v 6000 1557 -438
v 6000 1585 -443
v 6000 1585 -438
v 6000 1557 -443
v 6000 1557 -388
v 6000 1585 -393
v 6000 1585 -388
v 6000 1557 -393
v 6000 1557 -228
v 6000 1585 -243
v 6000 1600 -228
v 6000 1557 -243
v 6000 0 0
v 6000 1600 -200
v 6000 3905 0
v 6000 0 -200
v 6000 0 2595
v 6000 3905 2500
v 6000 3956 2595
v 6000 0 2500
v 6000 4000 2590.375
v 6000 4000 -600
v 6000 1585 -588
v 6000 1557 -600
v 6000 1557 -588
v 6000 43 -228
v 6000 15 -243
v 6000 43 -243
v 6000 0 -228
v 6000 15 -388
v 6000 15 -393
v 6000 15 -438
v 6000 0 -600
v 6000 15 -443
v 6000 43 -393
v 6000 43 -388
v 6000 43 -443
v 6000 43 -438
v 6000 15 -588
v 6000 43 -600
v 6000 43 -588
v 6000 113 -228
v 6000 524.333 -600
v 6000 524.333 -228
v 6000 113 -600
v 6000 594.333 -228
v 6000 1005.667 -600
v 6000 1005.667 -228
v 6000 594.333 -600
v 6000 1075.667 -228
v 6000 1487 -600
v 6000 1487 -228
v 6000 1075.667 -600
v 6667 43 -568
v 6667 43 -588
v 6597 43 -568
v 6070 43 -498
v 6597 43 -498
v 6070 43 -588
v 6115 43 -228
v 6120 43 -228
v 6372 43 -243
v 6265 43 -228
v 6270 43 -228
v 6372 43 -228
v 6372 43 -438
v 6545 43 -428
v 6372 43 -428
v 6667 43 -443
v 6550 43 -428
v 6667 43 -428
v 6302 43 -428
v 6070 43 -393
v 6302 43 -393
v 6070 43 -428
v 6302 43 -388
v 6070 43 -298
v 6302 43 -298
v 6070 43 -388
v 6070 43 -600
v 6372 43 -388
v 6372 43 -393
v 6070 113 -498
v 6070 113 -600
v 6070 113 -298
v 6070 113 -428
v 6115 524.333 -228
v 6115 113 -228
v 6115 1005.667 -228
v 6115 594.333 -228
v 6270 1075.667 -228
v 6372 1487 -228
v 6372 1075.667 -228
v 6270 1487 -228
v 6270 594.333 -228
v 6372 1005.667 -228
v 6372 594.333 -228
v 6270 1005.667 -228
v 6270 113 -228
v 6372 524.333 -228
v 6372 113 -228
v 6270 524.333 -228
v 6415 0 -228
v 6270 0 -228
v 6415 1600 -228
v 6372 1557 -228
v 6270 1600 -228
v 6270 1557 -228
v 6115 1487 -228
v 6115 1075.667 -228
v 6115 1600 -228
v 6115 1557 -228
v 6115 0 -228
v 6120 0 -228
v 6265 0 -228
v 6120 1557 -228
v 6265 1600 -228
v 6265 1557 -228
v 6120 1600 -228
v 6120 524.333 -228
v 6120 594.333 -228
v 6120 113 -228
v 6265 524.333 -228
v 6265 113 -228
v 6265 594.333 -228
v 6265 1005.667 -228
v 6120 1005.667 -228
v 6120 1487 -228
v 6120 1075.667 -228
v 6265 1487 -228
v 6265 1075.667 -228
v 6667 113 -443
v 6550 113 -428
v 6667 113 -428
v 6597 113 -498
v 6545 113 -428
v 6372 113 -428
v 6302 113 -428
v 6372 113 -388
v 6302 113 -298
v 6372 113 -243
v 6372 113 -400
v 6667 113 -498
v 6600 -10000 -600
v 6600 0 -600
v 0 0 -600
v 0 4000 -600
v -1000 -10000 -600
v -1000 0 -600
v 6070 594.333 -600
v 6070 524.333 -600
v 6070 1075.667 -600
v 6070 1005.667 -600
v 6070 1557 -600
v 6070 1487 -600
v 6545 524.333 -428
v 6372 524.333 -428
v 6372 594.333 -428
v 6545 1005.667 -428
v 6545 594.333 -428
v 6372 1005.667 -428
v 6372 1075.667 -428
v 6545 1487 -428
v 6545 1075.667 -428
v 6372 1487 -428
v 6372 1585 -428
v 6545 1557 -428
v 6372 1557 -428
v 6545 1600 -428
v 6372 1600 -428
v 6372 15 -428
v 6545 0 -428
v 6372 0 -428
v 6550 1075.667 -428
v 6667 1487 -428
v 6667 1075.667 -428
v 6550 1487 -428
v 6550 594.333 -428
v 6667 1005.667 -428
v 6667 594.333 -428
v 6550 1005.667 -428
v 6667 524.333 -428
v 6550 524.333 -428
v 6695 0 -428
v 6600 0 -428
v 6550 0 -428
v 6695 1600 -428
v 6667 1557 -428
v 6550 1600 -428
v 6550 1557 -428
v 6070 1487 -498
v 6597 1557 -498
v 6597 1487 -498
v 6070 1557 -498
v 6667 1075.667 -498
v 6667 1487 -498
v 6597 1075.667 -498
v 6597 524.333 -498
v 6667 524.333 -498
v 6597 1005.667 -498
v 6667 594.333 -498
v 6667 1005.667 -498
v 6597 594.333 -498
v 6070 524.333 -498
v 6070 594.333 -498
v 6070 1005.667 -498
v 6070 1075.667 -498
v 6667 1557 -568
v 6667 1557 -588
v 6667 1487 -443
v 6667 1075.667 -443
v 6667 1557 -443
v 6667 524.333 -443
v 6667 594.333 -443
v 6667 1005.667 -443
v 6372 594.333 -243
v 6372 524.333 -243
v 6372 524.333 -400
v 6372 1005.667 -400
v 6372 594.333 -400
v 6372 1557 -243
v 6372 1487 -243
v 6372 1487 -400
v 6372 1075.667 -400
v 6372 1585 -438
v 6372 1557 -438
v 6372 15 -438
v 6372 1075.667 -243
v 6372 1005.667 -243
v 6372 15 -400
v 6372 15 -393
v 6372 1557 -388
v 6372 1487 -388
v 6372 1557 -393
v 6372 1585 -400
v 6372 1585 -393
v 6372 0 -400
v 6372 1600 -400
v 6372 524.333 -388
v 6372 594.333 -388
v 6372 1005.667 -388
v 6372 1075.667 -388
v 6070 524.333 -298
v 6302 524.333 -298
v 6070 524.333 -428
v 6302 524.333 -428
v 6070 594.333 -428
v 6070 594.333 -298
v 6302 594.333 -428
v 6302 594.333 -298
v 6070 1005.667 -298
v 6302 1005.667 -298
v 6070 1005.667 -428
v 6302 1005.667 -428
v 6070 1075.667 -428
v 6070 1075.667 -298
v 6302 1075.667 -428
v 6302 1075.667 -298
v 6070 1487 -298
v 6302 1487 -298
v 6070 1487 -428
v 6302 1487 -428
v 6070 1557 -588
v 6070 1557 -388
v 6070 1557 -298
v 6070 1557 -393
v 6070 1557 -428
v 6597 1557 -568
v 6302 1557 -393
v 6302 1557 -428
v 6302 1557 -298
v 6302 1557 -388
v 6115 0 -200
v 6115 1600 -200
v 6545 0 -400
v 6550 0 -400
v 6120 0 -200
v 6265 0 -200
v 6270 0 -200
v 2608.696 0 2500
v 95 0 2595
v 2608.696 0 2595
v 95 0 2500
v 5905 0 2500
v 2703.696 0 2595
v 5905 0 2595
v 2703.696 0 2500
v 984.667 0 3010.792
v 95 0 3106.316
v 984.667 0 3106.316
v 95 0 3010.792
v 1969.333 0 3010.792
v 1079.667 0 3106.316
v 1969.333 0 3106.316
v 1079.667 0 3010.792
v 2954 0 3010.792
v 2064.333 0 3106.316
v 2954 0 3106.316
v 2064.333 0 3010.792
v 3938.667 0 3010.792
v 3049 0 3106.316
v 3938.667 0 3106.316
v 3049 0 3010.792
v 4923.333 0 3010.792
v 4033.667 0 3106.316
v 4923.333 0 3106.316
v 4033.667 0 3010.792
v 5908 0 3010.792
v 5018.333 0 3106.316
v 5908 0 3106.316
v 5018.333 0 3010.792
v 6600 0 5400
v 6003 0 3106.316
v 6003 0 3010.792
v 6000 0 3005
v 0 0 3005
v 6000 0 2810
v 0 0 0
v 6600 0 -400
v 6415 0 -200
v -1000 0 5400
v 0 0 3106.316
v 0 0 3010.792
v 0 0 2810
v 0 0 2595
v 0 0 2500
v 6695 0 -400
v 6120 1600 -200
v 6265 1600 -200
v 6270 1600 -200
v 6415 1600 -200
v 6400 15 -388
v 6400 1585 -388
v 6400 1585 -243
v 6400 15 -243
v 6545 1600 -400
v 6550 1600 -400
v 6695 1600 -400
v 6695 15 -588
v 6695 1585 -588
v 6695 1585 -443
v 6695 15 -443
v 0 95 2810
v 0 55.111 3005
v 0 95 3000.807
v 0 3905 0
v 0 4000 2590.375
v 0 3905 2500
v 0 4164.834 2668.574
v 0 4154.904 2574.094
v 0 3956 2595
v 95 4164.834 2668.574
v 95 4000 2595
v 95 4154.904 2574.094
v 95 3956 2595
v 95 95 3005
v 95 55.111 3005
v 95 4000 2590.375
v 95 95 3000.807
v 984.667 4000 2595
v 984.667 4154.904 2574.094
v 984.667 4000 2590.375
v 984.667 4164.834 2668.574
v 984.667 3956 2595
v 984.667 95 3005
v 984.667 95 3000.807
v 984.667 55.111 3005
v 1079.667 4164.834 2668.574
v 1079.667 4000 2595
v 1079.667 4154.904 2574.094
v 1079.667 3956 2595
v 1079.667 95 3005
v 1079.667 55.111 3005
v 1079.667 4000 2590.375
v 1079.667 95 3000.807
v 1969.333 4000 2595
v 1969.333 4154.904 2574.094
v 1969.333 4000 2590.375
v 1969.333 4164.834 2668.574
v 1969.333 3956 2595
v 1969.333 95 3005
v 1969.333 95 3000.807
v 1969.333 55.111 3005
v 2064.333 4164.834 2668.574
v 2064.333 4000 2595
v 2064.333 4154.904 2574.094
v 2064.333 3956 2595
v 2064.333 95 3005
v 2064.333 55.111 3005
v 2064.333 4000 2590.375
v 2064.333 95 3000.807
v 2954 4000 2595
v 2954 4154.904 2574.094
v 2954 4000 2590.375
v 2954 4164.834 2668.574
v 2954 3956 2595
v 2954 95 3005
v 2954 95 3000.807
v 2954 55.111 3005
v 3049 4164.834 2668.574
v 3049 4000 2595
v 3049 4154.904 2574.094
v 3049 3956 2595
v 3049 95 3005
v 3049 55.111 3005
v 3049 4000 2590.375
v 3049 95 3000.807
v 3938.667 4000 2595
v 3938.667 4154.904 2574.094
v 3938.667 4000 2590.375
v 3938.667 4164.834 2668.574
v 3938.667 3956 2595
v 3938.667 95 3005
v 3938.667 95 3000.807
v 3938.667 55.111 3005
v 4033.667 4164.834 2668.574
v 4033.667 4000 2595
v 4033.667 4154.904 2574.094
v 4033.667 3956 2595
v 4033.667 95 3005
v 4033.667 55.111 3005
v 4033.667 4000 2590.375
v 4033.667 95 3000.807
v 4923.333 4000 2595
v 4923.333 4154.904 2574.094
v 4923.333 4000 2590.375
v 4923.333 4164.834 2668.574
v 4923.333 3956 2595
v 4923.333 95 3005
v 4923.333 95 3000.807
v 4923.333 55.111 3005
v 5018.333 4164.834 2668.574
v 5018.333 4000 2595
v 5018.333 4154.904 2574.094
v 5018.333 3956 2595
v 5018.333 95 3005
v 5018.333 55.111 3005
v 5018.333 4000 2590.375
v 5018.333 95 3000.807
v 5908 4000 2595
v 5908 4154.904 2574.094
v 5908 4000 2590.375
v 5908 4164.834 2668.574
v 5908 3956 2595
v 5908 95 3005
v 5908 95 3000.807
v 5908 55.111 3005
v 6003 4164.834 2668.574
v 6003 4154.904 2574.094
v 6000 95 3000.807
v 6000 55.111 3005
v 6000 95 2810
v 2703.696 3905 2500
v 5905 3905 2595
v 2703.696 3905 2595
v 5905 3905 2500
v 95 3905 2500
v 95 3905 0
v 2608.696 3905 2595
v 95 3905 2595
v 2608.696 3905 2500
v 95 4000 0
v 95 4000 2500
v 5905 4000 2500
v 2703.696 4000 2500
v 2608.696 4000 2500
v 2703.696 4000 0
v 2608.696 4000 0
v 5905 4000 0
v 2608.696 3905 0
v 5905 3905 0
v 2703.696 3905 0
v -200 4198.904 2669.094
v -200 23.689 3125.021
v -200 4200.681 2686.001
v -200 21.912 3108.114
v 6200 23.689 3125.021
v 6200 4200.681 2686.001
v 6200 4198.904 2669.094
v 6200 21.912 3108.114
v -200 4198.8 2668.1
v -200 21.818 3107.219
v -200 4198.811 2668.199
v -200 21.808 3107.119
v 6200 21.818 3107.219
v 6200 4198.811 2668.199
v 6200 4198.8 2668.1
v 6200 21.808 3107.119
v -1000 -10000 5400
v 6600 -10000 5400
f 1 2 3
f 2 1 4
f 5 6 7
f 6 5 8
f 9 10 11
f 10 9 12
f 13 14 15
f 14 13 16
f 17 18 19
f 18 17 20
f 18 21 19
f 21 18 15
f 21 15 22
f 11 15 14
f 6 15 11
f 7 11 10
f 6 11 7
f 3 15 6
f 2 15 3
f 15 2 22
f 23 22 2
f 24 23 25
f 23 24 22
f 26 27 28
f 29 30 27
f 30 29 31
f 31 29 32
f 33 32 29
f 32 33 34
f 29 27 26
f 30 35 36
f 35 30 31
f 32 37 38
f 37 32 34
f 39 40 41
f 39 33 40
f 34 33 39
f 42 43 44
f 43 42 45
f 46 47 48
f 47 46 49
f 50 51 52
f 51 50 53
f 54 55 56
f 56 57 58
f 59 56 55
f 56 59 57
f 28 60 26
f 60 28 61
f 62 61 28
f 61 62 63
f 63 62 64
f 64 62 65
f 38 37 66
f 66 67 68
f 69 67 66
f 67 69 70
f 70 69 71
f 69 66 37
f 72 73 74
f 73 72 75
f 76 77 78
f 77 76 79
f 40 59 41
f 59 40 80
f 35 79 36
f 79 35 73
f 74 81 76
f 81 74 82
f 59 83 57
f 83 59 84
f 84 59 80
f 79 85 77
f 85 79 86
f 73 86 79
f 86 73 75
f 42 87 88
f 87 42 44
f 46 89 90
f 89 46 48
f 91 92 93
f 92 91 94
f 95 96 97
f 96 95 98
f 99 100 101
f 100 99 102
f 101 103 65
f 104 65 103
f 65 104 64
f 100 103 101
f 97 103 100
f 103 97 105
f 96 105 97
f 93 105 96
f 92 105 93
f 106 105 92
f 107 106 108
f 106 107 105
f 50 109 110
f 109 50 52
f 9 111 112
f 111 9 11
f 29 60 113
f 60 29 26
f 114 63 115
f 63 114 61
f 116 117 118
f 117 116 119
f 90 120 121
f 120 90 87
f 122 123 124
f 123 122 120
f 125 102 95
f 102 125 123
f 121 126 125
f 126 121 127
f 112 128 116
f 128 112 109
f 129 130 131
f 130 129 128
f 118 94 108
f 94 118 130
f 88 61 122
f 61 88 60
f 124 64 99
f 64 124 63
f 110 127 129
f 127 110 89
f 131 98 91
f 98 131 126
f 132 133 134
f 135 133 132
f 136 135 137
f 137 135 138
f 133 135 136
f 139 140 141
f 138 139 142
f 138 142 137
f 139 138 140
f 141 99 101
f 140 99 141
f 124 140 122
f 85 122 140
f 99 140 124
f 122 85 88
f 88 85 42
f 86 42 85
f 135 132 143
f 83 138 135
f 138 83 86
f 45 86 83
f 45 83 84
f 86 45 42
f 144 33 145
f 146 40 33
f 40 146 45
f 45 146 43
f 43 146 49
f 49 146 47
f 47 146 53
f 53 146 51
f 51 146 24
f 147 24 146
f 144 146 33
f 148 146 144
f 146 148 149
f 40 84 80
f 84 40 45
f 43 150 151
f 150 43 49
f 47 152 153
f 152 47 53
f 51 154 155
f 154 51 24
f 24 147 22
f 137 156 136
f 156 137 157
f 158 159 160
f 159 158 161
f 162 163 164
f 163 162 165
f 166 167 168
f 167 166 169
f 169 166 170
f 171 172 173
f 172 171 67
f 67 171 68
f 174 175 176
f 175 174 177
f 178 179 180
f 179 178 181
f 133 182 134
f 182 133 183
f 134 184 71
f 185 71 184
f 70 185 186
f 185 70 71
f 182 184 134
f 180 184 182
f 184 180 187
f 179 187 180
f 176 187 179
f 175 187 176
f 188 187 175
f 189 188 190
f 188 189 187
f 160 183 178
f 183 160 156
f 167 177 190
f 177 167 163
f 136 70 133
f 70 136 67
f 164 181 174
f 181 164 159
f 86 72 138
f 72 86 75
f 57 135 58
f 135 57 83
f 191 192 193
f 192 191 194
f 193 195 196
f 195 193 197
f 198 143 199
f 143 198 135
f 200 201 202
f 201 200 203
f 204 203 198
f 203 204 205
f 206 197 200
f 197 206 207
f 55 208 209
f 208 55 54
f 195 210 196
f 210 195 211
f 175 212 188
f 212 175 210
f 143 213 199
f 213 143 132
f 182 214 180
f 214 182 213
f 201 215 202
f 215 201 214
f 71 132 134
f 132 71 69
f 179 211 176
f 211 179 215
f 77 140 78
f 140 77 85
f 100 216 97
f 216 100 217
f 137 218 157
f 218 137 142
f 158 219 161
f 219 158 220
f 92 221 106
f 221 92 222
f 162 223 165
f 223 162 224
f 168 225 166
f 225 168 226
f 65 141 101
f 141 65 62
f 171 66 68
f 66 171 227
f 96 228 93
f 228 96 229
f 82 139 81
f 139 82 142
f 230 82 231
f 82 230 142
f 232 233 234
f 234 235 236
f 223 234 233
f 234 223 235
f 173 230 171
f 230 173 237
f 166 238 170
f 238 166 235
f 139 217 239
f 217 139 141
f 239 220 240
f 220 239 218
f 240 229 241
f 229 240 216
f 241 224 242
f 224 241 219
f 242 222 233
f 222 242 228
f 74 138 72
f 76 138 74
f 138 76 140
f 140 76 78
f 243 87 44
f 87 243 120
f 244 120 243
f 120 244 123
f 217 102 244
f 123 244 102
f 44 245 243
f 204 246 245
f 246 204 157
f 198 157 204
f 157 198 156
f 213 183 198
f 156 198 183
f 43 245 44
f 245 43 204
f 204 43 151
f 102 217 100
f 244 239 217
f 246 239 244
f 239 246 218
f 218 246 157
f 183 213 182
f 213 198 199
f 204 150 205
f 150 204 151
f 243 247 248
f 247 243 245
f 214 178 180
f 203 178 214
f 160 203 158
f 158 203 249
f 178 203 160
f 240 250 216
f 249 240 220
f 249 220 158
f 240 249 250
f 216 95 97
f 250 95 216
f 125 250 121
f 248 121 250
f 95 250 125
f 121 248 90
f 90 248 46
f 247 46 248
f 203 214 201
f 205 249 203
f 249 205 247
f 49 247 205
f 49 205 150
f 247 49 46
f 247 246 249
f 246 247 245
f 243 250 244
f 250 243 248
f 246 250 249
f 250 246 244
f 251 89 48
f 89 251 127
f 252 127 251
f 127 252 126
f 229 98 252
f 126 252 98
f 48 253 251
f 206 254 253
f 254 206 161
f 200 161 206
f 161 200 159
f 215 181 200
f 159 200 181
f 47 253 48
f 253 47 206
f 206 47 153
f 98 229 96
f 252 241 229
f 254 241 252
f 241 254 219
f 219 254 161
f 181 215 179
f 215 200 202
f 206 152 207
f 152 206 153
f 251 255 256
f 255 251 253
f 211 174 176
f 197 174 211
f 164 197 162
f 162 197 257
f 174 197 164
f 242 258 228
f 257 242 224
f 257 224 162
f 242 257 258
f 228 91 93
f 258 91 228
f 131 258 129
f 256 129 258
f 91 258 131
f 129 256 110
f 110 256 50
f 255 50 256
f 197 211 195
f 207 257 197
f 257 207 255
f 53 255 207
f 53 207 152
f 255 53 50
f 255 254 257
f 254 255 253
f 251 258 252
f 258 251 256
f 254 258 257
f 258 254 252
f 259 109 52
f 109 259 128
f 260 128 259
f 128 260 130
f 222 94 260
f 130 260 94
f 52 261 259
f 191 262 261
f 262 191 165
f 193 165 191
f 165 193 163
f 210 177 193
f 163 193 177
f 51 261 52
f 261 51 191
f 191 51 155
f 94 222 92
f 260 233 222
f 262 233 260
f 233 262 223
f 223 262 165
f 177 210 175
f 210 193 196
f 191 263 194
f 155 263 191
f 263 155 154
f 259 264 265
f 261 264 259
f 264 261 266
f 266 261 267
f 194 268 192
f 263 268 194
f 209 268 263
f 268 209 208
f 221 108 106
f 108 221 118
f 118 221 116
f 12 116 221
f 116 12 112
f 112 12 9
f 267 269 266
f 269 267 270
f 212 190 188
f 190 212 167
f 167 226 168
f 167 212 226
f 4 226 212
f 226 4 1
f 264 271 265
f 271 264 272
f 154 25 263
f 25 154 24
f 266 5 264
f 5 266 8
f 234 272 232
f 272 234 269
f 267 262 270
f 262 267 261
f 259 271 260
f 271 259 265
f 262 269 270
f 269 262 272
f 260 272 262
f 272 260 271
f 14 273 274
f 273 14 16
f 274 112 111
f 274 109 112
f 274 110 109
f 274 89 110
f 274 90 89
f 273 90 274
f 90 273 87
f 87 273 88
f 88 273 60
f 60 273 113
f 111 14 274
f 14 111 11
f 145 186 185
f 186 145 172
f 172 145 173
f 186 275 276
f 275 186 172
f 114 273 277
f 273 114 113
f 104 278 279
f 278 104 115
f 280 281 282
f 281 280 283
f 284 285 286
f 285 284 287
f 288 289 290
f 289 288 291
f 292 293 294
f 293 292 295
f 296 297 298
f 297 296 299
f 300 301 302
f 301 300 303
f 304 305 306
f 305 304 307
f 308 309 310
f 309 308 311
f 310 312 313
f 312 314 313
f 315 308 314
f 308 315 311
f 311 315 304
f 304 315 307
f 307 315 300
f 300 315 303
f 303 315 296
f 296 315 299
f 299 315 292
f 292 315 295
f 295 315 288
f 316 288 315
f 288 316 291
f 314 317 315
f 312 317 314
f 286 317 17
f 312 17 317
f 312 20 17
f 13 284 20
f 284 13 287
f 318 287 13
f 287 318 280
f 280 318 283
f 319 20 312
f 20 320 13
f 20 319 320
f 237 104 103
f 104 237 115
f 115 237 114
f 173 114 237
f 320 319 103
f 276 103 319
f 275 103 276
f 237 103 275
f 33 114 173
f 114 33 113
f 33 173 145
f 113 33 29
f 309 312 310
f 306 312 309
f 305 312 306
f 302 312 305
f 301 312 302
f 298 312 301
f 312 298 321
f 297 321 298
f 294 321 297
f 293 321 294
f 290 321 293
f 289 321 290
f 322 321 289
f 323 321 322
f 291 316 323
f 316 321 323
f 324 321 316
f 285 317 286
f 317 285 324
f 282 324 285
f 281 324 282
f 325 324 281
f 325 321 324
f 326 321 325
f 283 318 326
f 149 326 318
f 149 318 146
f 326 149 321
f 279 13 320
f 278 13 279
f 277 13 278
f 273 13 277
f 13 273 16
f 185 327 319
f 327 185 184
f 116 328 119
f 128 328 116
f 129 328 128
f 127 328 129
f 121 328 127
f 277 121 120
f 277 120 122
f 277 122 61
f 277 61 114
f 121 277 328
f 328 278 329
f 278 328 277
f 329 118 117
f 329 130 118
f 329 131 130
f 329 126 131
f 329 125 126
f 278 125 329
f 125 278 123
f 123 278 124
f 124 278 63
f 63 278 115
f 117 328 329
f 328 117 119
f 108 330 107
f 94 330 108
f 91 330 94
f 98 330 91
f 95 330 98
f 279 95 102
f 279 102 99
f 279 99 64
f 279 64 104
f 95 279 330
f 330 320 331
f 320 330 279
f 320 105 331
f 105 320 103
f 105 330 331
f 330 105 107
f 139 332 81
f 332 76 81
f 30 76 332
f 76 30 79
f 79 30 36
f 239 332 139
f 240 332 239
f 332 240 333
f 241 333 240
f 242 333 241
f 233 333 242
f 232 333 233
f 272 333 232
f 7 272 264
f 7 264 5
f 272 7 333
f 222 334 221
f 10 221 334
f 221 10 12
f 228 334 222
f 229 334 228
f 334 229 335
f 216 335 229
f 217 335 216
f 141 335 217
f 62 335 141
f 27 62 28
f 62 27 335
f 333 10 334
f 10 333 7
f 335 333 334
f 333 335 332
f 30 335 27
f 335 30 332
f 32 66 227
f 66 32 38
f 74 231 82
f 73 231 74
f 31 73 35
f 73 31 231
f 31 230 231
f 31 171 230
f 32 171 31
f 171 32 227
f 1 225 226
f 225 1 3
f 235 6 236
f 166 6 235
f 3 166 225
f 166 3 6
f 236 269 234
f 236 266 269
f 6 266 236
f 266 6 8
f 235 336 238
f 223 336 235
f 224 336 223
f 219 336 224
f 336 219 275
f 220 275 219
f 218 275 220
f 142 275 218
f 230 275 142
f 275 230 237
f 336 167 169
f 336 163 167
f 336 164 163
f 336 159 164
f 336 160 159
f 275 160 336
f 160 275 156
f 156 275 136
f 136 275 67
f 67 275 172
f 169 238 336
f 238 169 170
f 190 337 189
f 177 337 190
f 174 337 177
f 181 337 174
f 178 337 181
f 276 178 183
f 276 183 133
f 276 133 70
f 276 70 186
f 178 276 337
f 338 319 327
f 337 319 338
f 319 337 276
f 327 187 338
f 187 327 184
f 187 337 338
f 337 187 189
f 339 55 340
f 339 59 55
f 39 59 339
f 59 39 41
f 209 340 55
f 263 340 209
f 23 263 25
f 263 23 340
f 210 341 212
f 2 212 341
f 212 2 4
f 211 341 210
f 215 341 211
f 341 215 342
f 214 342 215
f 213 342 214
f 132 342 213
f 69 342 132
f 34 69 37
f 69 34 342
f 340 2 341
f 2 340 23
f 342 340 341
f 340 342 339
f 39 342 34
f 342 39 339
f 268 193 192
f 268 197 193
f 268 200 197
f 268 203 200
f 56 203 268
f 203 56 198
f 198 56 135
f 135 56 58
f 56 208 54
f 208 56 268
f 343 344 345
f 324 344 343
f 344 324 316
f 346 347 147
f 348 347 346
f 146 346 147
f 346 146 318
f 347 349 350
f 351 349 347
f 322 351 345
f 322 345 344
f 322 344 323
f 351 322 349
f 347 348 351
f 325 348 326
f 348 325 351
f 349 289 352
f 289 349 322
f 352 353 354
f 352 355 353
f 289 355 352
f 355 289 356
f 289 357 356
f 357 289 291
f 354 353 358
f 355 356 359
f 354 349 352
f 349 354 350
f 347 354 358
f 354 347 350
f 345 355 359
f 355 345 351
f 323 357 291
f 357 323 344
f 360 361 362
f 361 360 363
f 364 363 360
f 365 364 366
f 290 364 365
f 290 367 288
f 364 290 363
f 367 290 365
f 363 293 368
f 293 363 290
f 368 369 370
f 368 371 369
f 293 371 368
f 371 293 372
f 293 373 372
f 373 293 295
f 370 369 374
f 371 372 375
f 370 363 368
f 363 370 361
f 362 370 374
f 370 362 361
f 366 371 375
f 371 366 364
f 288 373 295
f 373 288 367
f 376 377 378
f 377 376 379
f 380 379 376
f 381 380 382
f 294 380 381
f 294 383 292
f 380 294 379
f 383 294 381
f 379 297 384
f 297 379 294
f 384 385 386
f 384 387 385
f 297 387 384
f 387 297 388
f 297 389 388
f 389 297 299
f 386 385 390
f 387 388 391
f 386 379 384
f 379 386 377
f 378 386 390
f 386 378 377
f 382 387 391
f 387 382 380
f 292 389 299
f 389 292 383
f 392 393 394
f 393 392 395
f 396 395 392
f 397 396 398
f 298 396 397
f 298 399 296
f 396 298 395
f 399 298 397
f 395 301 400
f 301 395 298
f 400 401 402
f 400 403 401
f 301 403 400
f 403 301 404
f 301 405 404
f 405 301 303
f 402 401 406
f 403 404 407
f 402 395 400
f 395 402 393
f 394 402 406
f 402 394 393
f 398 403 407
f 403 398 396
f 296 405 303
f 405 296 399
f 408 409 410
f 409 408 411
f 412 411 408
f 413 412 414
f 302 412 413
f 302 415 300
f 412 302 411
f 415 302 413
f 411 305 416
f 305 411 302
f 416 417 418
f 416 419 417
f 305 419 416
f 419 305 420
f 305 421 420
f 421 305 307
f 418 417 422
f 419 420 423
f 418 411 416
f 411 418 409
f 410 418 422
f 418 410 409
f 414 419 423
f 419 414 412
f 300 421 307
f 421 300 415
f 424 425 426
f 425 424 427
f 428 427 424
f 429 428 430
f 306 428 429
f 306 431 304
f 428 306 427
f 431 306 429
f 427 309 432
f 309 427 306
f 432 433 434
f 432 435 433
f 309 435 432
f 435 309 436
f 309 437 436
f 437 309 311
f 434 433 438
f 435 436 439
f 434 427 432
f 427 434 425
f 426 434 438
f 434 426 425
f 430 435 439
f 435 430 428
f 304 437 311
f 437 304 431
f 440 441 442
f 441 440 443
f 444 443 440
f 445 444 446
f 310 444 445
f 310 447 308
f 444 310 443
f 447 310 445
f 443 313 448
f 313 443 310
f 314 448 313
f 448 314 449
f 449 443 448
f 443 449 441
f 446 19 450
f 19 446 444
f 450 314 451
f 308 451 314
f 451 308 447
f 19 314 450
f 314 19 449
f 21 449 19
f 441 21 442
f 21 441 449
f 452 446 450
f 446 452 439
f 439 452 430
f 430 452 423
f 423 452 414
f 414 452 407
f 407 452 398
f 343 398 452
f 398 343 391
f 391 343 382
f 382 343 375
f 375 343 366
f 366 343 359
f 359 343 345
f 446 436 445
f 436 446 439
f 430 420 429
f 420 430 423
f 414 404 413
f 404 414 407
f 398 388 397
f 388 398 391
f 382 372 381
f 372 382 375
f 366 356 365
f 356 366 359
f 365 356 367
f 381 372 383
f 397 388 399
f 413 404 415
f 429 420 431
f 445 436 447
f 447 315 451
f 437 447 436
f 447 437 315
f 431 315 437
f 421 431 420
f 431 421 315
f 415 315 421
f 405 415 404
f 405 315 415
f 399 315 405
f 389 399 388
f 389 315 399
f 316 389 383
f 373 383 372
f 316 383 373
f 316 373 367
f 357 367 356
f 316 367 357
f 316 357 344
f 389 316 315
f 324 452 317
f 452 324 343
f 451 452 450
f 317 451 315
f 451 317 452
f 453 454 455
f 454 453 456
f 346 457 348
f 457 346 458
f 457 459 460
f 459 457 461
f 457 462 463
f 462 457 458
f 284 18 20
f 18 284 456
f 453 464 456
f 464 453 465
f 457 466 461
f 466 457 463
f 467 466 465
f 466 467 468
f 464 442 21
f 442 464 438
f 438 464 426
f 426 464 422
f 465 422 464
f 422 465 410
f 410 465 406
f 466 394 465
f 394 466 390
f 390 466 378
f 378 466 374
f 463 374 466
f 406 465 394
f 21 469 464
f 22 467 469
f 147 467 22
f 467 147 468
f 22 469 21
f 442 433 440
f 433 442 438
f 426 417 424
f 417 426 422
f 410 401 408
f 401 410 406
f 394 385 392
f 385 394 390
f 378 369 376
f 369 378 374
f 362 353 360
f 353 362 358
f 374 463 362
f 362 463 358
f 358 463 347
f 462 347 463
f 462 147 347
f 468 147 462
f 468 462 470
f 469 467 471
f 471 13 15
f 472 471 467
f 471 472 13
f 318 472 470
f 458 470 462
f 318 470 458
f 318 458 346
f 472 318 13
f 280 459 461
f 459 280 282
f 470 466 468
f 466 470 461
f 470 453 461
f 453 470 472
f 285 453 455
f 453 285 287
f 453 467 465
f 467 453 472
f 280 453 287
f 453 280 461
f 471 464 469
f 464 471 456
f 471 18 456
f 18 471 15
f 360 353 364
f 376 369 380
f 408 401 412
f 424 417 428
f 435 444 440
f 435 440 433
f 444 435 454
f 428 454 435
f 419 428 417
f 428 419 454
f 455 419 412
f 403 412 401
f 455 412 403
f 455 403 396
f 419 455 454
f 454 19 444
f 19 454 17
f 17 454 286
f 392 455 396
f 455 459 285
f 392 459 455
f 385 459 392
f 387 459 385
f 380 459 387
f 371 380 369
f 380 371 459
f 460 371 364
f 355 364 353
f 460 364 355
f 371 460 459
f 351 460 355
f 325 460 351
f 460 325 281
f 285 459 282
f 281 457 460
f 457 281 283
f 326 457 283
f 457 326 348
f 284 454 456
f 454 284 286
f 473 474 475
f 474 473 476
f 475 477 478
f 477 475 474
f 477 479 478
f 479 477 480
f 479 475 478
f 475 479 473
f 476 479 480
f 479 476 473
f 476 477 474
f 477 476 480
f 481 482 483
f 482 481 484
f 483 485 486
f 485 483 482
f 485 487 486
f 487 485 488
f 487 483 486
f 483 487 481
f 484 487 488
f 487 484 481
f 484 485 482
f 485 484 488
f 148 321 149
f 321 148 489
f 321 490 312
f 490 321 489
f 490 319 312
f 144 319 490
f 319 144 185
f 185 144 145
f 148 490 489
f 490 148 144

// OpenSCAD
// file: ../utils/own/helpers.scad
module Cube(width, length, height) {
  color("#ffeb91")
  cube([width, length, height]);
}

module 22x170(length = 100) {
  Cube(22, length, 170);
}

module 34x70(length = 100) {
  Cube(34, length, 70);
}

module 34x120(length = 100) {
  Cube(34, length, 120);
}

module 34x140(length = 100) {
  Cube(34, length, 140);
}

module 45x70(length = 100) {
  Cube(45, length, 70);
}

module 70x70(length = 100) {
  Cube(70, length, 70);
}

module 95x95(length = 100) {
  Cube(95, length, 95);
}

module 95x190(length = 100) {
  Cube(95, length, 195);
}

module Rotate(rotation = [0, 0, 0], origin = [0, 0, 0], debug = false) {
  translate(origin)
  rotate(rotation)
  translate(-origin)
  children();

  if (debug) {
    translate(origin) 
    #sphere(r=20);
  }
}

module Debug(hide = false, transparent = false, translate_x = false, translate_y = false, translate_z = false) {
  if (debug) {
    if (transparent) {
      %children();
    } else {
      children();
    }
  } else {
  children();
  }
}

module explode(part_pos, origin=[0,0,0], mask=[1, 1, 1], factor=1.0, enable=true, debug=false) {
    // Show the origin point once (using a small sphere)
    if (enable && debug) {
        %color("red", 0.5) translate(origin) sphere(d=50, $fn=20);
    }

    if (enable) {
        // Calculate the vector from the origin to where the part "lives"
        rel_vector = part_pos - origin;

        masked_vector = [
            rel_vector[0] * mask[0], 
            rel_vector[1] * mask[1], 
            rel_vector[2] * mask[2]
        ];

        
        // Move the part: Origin + (Direction * Factor)
        // We subtract part_pos at the end because the child is usually 
        // already translated to its position in the main code.
        translate(origin + (masked_vector * factor) - part_pos)
            children();
    } else {
        children(); // Do nothing if not enabled
    }
}


// module explode( distance=[10,10,10], origin=[0,0,0], factor = 2, enable=true, debug=false ) {
//     // Debug Origin Sphere
//     if (enable && debug) {
//         %color("red", 0.5) translate(origin) sphere(d=200, $fn=20);
//     }

//     if (enable) {
//         for (i = [0 : 1 : $children-1]) {
//             // 1. We need to know where the part is 'supposed' to be.
//             // Since children(i) are just geometry, we assume their 
//             // 'base' position is their index multiplied by distance.
//             part_pos = [i * distance[0], i * distance[1], i * distance[2]];
            
//             // 2. Calculate vector from origin to the part
//             rel_vector = part_pos - origin;
            
//             // 3. Move from origin + (relative direction * offset)
//             // Note: Use a multiplier (e.g., 2) to actually see the "gap" grow
//             translate(origin + rel_vector * 2) {
//                 children(i);
//             }
//         }
//     } else {
//         // NOT ENABLED - Standard layout
//         for (i = [0 : 1 : $children-1]) {
//             translate([i * distance[0], i * distance[1], i * distance[2]])
//                 children(i);
//         }
//     }
// }

// module explode( distance, center, enable ) {
//     if ( (enable) && (!center) ) {
//       echo(str("distance = ", distance));
//       echo(str("center = ", center));
//       echo(str("enable = ", enable));

        
//      for ( i= [0:1:$children-1]) {  // step needed in case $children < 2                
//       echo(str("i = ", i));
//         translate( [i*distance[0],i*distance[1],i*distance[2]] ) {
//             children(i);
//         } 
//       } 
//     }
    
//     //CENTERED
    
//     if ( (enable) && (center) ) {
//         count = $children - 1;
//         explode_start = ( [ (count*distance[0])/2 * -1, (count*distance[1])/2 *-1,(count*distance[2])/2 * -1 ] ) ;
        


//         for ( i= [0:1:$children-1])   // step needed in case $children < 2  
//         translate( explode_start ) {
//             translate( [i*distance[0],i*distance[1],i*distance[2] ] ) {
//                 children(i);
//             }    
//         }
//     }

//     //NOT ENABLED - Include un-altered children

//     if (!enable) {        
//         for ( i= [0:1:$children-1]){   // step needed in case $children < 2     


//             children(i);
//         }         
//     }
// }
// main file
use <../utils/own/helpers.scad>

$fn = 50;

debug = true;
debug = false;

show_walls = true;
show_walls = false;

total_length = 6000;
total_height = 2500;
total_width = 4000;

overhang = 200;

angle = 6; // https://www.jemfix.se/yttakpapp-toptite-6-graa-8-x-1-m-tecca/4210/9061238/

/*

Skivor vs spont

*/

//

echo(str(""));
// echo(str("Top: 45x70 = ", top_stock_length, "m"));
echo(str(""));

//

// Floor
color("beige")
translate([0, 0, -600]) 
Cube(total_length, total_width, 600);

// House
color("#ffe054")
translate([-1000, -10000, -600]) 
Cube(total_length + 600 + 1000, 10000, 6000);

translate([total_length, 0, -600]) 
Stairs();

Roof();

if (show_walls) Walls();

// //

module Roof() {
  color("white"){
    // Bärlina
    translate([total_length, 0, total_height + 310]) 
    Rotate([0, 0, 90])
    95x190(total_length);

    // Pillars
    translate([0, total_width, 0]) 
    Rotate([90, 0, 0])
    95x95(total_height);
    if (!show_walls) {
      translate([total_length/2.3, total_width, 0]) 
      Rotate([90, 0, 0])
      95x95(total_height);
    }
    translate([total_length - 95, total_width, 0]) 
    Rotate([90, 0, 0])
    95x95(total_height);

    // Horizontal joists
    translate([0, 0, total_height]) 
    95x95(total_width);
    translate([total_length/2.3, 0, total_height]) 
    95x95(total_width);
    translate([total_length - 95, 0, total_height]) 
    95x95(total_width);

    translate([total_length, total_width - 95, total_height]) 
    Rotate([0, 0, 90])
    95x95(total_length);
    translate([total_length, total_width - 95, total_height]) 
    Rotate([0, 0, 90])
    95x95(total_length);

    // Main/Primary roof joists - matching pillars
    // translate([0, 0, total_height + 95]) 
    // Rotate([-angle, 0, 0], [0, total_width, 0])
    // 95x190(total_width + overhang);
    // translate([total_length/2.3, 0, total_height + 95]) 
    // Rotate([-angle, 0, 0], [0, total_width, 0])
    // 95x190(total_width + overhang);
    // translate([total_length - 95, 0, total_height + 95]) 
    // Rotate([-angle, 0, 0], [0, total_width, 0])
    // 95x190(total_width + overhang);

    // Main/Primary roof joists - evenly spaced
    roof_joist_distance = 900; // cc?
    nbr_of_roof_joists = ceil(total_length / roof_joist_distance);
    echo(str("nbr_of_roof_joists = ", nbr_of_roof_joists));
    roof_joist_distance_actual = (total_length - nbr_of_roof_joists - 85) / (nbr_of_roof_joists - 1);
    echo(str("roof_joist_distance_actual = ", roof_joist_distance_actual));
    for (i=[0:nbr_of_roof_joists-1]) {
      translate([roof_joist_distance_actual * i, -44, total_height + 95]) 
      Rotate([-angle, 0, 0], [0, total_width, 0])
      difference() {
        95x95(total_width + overhang);
        Rotate([angle, 0, 0])
      translate([-1, -95 + 22, -10]) 
                        Cube(95 + 2, 95, 220);
      }
    }
  }

  // Spont / skiva
  translate([-overhang, 0, total_height + 95 + 95]) 
  Rotate([-angle, 0, 0], [0, total_width, 0]) {
    color("black")
    Cube(total_length + overhang*2, total_width + overhang, 17);
    color("white")
    translate([0, 0, -1]) 
    Cube(total_length + overhang*2, total_width + overhang, 0.1);
  }
}


module Walls() {

  // Glass wall front
  // Pillar
  translate([total_length, 0, 0]) {
    color("white")
    translate([-95, 95, 0]) 
    Rotate([90, 0, 0])
    95x95(total_height + 600);

    scale([-1, 1, 1]) {
      translate([0, 0, 0]) 
      LargeSlidingGlassDoor();
      translate([0, total_width/3, 0]) 
      LargeSlidingGlassDoor();
      translate([0, (total_width/3)*2, 0]) 
      LargeSlidingGlassDoor();
    }
  }

  // Glass wall side

  color("white") {
    translate([0, total_width - 22, 0]) 
    Cube(total_length, 22, total_height/3);
    translate([0, total_width, total_height/3]) 
    Rotate([0, 0, -90])
    95x95(total_length);
  }

  nbr_of_windows = 4;
  window_width = total_length/nbr_of_windows - 95/nbr_of_windows;
  for (i=[0:nbr_of_windows-1]) {
    translate([(window_width) * i, total_width, total_height/3 + 95]) {
      Window();
    }
  }

  // Glass wall back
  // Pillar
  translate([0, 0, 0]) {
    color("white")
    translate([0, 95, 0]) 
    Rotate([90, 0, 0])
    95x95(total_height + 600);

    translate([0, 0, 0]) 
    LargeSlidingGlassDoor();
    translate([0, total_width/3, 0]) 
    LargeSlidingGlassDoor();
    translate([0, (total_width/3)*2, 0]) 
    LargeSlidingGlassDoor();
  }

  module Window() {
    height = (total_height/3)*2 - 95;

    Rotate([90, 0, 0])
    color("white") {
      95x95(height);

      translate([window_width, 0, 0]) 
      95x95(height);
    }

    color("#00e1ff59")
    translate([95, -22, 0]) 
    Cube(window_width - 95, 22, height);
  }

  module LargeSlidingGlassDoor() {
    Rotate([90, 0, 0])
    color("white") {
      95x95(total_height);

      translate([0, 0, -total_width/3]) 
      95x95(total_height);
    }

    color("#00e1ff59")
    Cube(22, total_width/3 - 95, total_height);
  }
}

module Stairs() {
  step_height = 200;
  upper_step_depth = 400;
  // lower_step_depth = 300;
  lower_step_depth = 295;

  plank_thickness = 28;
  
  total_width = 1600;  
  total_height = step_height * 2;
  // total_depth = 600;
  total_depth = upper_step_depth + lower_step_depth;

  stair_plank_overhang = 15;

  plank_width = 145;
  plank_distance = 5;
  offset_upper = 73 - 28 - stair_plank_overhang;
  offset_lower = 0;

  show_planks = false;
  show_planks = true;


  nbr_joists = 4;

  distance = (((total_width - 70 - plank_thickness*2 - stair_plank_overhang*2) / (nbr_joists - 1)));
  echo(str("Stair joist distance = ", distance));

  color("beige") {


    // base joint front supported by plinths?
    // whole length
    translate([total_depth - 70 - plank_thickness, plank_thickness + stair_plank_overhang, 32]) 
    70x70(total_width - plank_thickness*2 - stair_plank_overhang*2);

    translate([0, 70 + plank_thickness + stair_plank_overhang, 0]) 
    for (i=[0:nbr_joists - 1]) {

      // back
      translate([0, distance * i, 0]) 
      rotate([90, 0, 0]) 
      70x70(total_height - plank_thickness);
      // lower support
      translate([0, distance * i, step_height - 70 - plank_thickness]) 
      rotate([0, 0, -90]) 
      70x70(total_depth - plank_thickness);
      // upper support
      translate([0, distance * i, total_height - 70 - plank_thickness]) 
      rotate([0, 0, -90]) 
      70x70(upper_step_depth - plank_thickness);
      // lower leg
      // translate([total_depth - 70 - plank_thickness, distance * i, 0]) 
      // rotate([90, 0, 0]) 
      // 70x70(step_height - plank_thickness);
      // upper leg
      translate([upper_step_depth - 70 - plank_thickness, distance * i, step_height - plank_thickness]) 
      rotate([90, 0, 0]) 
      70x70(step_height - plank_thickness);
    }


    if (show_planks) {
      // planks upper step
      translate([0, 0, total_height - 28]) 
      Cube(plank_width - offset_upper, total_width, 28);
      translate([plank_width + plank_distance - offset_upper, 0, total_height - 28]) 
      Cube(plank_width, total_width, 28);
      translate([(plank_width + plank_distance) * 2 - offset_upper, 0, total_height - 28]) 
      Cube(plank_width, total_width, 28);
      // front
      translate([upper_step_depth, stair_plank_overhang, total_height - plank_width - 28 - stair_plank_overhang]) 
      rotate([0, -90, 0]) 
      Cube(plank_width, total_width - stair_plank_overhang*2, 28);
      // side left
      translate([0, stair_plank_overhang, total_height - plank_width - 28 - stair_plank_overhang]) 
      rotate([0, -90, -90]) 
      Cube(plank_width, upper_step_depth - 28, 28);
      translate([0, stair_plank_overhang, total_height - plank_width - 28 - stair_plank_overhang - 50]) 
      rotate([0, -90, -90]) 
      Cube(45, upper_step_depth - 28, 28);
      // side right
      translate([0, total_width - 28 - stair_plank_overhang, total_height - plank_width - 28 - stair_plank_overhang]) 
      rotate([0, -90, -90]) 
      Cube(plank_width, upper_step_depth - 28, 28);
      translate([0, total_width - 28 - stair_plank_overhang, total_height - plank_width - 28 - stair_plank_overhang - 50]) 
      rotate([0, -90, -90]) 
      Cube(45, upper_step_depth - 28, 28);

      // planks lower step
      translate([upper_step_depth - 28, 0, step_height - 28]) 
      Cube(plank_width - offset_lower + 28, total_width, 28);
      translate([upper_step_depth + plank_width - offset_lower + plank_distance, 0, step_height - 28]) 
      Cube(plank_width, total_width, 28);
      // front
      translate([total_depth, stair_plank_overhang, step_height - plank_width - 28 - stair_plank_overhang]) 
      rotate([0, -90, 0]) 
      Cube(plank_width, total_width - stair_plank_overhang*2, 28);
      // side left
      translate([0, stair_plank_overhang, step_height - plank_width - 28 - stair_plank_overhang]) 
      rotate([0, -90, -90]) 
      Cube(plank_width, total_depth - 28, 28);
      // side right
      translate([0, total_width - 28 - stair_plank_overhang, step_height - plank_width - 28 - stair_plank_overhang]) 
      rotate([0, -90, -90]) 
      Cube(plank_width, total_depth - 28, 28);
    }
  }

  // debug
  // color("#F005")
  // union() {
  //   Cube(total_depth, total_width, step_height);
    
  //   translate([0, -1, step_height]) 
  //   Cube(upper_step_depth, total_width, step_height + 1);
  // }
}
